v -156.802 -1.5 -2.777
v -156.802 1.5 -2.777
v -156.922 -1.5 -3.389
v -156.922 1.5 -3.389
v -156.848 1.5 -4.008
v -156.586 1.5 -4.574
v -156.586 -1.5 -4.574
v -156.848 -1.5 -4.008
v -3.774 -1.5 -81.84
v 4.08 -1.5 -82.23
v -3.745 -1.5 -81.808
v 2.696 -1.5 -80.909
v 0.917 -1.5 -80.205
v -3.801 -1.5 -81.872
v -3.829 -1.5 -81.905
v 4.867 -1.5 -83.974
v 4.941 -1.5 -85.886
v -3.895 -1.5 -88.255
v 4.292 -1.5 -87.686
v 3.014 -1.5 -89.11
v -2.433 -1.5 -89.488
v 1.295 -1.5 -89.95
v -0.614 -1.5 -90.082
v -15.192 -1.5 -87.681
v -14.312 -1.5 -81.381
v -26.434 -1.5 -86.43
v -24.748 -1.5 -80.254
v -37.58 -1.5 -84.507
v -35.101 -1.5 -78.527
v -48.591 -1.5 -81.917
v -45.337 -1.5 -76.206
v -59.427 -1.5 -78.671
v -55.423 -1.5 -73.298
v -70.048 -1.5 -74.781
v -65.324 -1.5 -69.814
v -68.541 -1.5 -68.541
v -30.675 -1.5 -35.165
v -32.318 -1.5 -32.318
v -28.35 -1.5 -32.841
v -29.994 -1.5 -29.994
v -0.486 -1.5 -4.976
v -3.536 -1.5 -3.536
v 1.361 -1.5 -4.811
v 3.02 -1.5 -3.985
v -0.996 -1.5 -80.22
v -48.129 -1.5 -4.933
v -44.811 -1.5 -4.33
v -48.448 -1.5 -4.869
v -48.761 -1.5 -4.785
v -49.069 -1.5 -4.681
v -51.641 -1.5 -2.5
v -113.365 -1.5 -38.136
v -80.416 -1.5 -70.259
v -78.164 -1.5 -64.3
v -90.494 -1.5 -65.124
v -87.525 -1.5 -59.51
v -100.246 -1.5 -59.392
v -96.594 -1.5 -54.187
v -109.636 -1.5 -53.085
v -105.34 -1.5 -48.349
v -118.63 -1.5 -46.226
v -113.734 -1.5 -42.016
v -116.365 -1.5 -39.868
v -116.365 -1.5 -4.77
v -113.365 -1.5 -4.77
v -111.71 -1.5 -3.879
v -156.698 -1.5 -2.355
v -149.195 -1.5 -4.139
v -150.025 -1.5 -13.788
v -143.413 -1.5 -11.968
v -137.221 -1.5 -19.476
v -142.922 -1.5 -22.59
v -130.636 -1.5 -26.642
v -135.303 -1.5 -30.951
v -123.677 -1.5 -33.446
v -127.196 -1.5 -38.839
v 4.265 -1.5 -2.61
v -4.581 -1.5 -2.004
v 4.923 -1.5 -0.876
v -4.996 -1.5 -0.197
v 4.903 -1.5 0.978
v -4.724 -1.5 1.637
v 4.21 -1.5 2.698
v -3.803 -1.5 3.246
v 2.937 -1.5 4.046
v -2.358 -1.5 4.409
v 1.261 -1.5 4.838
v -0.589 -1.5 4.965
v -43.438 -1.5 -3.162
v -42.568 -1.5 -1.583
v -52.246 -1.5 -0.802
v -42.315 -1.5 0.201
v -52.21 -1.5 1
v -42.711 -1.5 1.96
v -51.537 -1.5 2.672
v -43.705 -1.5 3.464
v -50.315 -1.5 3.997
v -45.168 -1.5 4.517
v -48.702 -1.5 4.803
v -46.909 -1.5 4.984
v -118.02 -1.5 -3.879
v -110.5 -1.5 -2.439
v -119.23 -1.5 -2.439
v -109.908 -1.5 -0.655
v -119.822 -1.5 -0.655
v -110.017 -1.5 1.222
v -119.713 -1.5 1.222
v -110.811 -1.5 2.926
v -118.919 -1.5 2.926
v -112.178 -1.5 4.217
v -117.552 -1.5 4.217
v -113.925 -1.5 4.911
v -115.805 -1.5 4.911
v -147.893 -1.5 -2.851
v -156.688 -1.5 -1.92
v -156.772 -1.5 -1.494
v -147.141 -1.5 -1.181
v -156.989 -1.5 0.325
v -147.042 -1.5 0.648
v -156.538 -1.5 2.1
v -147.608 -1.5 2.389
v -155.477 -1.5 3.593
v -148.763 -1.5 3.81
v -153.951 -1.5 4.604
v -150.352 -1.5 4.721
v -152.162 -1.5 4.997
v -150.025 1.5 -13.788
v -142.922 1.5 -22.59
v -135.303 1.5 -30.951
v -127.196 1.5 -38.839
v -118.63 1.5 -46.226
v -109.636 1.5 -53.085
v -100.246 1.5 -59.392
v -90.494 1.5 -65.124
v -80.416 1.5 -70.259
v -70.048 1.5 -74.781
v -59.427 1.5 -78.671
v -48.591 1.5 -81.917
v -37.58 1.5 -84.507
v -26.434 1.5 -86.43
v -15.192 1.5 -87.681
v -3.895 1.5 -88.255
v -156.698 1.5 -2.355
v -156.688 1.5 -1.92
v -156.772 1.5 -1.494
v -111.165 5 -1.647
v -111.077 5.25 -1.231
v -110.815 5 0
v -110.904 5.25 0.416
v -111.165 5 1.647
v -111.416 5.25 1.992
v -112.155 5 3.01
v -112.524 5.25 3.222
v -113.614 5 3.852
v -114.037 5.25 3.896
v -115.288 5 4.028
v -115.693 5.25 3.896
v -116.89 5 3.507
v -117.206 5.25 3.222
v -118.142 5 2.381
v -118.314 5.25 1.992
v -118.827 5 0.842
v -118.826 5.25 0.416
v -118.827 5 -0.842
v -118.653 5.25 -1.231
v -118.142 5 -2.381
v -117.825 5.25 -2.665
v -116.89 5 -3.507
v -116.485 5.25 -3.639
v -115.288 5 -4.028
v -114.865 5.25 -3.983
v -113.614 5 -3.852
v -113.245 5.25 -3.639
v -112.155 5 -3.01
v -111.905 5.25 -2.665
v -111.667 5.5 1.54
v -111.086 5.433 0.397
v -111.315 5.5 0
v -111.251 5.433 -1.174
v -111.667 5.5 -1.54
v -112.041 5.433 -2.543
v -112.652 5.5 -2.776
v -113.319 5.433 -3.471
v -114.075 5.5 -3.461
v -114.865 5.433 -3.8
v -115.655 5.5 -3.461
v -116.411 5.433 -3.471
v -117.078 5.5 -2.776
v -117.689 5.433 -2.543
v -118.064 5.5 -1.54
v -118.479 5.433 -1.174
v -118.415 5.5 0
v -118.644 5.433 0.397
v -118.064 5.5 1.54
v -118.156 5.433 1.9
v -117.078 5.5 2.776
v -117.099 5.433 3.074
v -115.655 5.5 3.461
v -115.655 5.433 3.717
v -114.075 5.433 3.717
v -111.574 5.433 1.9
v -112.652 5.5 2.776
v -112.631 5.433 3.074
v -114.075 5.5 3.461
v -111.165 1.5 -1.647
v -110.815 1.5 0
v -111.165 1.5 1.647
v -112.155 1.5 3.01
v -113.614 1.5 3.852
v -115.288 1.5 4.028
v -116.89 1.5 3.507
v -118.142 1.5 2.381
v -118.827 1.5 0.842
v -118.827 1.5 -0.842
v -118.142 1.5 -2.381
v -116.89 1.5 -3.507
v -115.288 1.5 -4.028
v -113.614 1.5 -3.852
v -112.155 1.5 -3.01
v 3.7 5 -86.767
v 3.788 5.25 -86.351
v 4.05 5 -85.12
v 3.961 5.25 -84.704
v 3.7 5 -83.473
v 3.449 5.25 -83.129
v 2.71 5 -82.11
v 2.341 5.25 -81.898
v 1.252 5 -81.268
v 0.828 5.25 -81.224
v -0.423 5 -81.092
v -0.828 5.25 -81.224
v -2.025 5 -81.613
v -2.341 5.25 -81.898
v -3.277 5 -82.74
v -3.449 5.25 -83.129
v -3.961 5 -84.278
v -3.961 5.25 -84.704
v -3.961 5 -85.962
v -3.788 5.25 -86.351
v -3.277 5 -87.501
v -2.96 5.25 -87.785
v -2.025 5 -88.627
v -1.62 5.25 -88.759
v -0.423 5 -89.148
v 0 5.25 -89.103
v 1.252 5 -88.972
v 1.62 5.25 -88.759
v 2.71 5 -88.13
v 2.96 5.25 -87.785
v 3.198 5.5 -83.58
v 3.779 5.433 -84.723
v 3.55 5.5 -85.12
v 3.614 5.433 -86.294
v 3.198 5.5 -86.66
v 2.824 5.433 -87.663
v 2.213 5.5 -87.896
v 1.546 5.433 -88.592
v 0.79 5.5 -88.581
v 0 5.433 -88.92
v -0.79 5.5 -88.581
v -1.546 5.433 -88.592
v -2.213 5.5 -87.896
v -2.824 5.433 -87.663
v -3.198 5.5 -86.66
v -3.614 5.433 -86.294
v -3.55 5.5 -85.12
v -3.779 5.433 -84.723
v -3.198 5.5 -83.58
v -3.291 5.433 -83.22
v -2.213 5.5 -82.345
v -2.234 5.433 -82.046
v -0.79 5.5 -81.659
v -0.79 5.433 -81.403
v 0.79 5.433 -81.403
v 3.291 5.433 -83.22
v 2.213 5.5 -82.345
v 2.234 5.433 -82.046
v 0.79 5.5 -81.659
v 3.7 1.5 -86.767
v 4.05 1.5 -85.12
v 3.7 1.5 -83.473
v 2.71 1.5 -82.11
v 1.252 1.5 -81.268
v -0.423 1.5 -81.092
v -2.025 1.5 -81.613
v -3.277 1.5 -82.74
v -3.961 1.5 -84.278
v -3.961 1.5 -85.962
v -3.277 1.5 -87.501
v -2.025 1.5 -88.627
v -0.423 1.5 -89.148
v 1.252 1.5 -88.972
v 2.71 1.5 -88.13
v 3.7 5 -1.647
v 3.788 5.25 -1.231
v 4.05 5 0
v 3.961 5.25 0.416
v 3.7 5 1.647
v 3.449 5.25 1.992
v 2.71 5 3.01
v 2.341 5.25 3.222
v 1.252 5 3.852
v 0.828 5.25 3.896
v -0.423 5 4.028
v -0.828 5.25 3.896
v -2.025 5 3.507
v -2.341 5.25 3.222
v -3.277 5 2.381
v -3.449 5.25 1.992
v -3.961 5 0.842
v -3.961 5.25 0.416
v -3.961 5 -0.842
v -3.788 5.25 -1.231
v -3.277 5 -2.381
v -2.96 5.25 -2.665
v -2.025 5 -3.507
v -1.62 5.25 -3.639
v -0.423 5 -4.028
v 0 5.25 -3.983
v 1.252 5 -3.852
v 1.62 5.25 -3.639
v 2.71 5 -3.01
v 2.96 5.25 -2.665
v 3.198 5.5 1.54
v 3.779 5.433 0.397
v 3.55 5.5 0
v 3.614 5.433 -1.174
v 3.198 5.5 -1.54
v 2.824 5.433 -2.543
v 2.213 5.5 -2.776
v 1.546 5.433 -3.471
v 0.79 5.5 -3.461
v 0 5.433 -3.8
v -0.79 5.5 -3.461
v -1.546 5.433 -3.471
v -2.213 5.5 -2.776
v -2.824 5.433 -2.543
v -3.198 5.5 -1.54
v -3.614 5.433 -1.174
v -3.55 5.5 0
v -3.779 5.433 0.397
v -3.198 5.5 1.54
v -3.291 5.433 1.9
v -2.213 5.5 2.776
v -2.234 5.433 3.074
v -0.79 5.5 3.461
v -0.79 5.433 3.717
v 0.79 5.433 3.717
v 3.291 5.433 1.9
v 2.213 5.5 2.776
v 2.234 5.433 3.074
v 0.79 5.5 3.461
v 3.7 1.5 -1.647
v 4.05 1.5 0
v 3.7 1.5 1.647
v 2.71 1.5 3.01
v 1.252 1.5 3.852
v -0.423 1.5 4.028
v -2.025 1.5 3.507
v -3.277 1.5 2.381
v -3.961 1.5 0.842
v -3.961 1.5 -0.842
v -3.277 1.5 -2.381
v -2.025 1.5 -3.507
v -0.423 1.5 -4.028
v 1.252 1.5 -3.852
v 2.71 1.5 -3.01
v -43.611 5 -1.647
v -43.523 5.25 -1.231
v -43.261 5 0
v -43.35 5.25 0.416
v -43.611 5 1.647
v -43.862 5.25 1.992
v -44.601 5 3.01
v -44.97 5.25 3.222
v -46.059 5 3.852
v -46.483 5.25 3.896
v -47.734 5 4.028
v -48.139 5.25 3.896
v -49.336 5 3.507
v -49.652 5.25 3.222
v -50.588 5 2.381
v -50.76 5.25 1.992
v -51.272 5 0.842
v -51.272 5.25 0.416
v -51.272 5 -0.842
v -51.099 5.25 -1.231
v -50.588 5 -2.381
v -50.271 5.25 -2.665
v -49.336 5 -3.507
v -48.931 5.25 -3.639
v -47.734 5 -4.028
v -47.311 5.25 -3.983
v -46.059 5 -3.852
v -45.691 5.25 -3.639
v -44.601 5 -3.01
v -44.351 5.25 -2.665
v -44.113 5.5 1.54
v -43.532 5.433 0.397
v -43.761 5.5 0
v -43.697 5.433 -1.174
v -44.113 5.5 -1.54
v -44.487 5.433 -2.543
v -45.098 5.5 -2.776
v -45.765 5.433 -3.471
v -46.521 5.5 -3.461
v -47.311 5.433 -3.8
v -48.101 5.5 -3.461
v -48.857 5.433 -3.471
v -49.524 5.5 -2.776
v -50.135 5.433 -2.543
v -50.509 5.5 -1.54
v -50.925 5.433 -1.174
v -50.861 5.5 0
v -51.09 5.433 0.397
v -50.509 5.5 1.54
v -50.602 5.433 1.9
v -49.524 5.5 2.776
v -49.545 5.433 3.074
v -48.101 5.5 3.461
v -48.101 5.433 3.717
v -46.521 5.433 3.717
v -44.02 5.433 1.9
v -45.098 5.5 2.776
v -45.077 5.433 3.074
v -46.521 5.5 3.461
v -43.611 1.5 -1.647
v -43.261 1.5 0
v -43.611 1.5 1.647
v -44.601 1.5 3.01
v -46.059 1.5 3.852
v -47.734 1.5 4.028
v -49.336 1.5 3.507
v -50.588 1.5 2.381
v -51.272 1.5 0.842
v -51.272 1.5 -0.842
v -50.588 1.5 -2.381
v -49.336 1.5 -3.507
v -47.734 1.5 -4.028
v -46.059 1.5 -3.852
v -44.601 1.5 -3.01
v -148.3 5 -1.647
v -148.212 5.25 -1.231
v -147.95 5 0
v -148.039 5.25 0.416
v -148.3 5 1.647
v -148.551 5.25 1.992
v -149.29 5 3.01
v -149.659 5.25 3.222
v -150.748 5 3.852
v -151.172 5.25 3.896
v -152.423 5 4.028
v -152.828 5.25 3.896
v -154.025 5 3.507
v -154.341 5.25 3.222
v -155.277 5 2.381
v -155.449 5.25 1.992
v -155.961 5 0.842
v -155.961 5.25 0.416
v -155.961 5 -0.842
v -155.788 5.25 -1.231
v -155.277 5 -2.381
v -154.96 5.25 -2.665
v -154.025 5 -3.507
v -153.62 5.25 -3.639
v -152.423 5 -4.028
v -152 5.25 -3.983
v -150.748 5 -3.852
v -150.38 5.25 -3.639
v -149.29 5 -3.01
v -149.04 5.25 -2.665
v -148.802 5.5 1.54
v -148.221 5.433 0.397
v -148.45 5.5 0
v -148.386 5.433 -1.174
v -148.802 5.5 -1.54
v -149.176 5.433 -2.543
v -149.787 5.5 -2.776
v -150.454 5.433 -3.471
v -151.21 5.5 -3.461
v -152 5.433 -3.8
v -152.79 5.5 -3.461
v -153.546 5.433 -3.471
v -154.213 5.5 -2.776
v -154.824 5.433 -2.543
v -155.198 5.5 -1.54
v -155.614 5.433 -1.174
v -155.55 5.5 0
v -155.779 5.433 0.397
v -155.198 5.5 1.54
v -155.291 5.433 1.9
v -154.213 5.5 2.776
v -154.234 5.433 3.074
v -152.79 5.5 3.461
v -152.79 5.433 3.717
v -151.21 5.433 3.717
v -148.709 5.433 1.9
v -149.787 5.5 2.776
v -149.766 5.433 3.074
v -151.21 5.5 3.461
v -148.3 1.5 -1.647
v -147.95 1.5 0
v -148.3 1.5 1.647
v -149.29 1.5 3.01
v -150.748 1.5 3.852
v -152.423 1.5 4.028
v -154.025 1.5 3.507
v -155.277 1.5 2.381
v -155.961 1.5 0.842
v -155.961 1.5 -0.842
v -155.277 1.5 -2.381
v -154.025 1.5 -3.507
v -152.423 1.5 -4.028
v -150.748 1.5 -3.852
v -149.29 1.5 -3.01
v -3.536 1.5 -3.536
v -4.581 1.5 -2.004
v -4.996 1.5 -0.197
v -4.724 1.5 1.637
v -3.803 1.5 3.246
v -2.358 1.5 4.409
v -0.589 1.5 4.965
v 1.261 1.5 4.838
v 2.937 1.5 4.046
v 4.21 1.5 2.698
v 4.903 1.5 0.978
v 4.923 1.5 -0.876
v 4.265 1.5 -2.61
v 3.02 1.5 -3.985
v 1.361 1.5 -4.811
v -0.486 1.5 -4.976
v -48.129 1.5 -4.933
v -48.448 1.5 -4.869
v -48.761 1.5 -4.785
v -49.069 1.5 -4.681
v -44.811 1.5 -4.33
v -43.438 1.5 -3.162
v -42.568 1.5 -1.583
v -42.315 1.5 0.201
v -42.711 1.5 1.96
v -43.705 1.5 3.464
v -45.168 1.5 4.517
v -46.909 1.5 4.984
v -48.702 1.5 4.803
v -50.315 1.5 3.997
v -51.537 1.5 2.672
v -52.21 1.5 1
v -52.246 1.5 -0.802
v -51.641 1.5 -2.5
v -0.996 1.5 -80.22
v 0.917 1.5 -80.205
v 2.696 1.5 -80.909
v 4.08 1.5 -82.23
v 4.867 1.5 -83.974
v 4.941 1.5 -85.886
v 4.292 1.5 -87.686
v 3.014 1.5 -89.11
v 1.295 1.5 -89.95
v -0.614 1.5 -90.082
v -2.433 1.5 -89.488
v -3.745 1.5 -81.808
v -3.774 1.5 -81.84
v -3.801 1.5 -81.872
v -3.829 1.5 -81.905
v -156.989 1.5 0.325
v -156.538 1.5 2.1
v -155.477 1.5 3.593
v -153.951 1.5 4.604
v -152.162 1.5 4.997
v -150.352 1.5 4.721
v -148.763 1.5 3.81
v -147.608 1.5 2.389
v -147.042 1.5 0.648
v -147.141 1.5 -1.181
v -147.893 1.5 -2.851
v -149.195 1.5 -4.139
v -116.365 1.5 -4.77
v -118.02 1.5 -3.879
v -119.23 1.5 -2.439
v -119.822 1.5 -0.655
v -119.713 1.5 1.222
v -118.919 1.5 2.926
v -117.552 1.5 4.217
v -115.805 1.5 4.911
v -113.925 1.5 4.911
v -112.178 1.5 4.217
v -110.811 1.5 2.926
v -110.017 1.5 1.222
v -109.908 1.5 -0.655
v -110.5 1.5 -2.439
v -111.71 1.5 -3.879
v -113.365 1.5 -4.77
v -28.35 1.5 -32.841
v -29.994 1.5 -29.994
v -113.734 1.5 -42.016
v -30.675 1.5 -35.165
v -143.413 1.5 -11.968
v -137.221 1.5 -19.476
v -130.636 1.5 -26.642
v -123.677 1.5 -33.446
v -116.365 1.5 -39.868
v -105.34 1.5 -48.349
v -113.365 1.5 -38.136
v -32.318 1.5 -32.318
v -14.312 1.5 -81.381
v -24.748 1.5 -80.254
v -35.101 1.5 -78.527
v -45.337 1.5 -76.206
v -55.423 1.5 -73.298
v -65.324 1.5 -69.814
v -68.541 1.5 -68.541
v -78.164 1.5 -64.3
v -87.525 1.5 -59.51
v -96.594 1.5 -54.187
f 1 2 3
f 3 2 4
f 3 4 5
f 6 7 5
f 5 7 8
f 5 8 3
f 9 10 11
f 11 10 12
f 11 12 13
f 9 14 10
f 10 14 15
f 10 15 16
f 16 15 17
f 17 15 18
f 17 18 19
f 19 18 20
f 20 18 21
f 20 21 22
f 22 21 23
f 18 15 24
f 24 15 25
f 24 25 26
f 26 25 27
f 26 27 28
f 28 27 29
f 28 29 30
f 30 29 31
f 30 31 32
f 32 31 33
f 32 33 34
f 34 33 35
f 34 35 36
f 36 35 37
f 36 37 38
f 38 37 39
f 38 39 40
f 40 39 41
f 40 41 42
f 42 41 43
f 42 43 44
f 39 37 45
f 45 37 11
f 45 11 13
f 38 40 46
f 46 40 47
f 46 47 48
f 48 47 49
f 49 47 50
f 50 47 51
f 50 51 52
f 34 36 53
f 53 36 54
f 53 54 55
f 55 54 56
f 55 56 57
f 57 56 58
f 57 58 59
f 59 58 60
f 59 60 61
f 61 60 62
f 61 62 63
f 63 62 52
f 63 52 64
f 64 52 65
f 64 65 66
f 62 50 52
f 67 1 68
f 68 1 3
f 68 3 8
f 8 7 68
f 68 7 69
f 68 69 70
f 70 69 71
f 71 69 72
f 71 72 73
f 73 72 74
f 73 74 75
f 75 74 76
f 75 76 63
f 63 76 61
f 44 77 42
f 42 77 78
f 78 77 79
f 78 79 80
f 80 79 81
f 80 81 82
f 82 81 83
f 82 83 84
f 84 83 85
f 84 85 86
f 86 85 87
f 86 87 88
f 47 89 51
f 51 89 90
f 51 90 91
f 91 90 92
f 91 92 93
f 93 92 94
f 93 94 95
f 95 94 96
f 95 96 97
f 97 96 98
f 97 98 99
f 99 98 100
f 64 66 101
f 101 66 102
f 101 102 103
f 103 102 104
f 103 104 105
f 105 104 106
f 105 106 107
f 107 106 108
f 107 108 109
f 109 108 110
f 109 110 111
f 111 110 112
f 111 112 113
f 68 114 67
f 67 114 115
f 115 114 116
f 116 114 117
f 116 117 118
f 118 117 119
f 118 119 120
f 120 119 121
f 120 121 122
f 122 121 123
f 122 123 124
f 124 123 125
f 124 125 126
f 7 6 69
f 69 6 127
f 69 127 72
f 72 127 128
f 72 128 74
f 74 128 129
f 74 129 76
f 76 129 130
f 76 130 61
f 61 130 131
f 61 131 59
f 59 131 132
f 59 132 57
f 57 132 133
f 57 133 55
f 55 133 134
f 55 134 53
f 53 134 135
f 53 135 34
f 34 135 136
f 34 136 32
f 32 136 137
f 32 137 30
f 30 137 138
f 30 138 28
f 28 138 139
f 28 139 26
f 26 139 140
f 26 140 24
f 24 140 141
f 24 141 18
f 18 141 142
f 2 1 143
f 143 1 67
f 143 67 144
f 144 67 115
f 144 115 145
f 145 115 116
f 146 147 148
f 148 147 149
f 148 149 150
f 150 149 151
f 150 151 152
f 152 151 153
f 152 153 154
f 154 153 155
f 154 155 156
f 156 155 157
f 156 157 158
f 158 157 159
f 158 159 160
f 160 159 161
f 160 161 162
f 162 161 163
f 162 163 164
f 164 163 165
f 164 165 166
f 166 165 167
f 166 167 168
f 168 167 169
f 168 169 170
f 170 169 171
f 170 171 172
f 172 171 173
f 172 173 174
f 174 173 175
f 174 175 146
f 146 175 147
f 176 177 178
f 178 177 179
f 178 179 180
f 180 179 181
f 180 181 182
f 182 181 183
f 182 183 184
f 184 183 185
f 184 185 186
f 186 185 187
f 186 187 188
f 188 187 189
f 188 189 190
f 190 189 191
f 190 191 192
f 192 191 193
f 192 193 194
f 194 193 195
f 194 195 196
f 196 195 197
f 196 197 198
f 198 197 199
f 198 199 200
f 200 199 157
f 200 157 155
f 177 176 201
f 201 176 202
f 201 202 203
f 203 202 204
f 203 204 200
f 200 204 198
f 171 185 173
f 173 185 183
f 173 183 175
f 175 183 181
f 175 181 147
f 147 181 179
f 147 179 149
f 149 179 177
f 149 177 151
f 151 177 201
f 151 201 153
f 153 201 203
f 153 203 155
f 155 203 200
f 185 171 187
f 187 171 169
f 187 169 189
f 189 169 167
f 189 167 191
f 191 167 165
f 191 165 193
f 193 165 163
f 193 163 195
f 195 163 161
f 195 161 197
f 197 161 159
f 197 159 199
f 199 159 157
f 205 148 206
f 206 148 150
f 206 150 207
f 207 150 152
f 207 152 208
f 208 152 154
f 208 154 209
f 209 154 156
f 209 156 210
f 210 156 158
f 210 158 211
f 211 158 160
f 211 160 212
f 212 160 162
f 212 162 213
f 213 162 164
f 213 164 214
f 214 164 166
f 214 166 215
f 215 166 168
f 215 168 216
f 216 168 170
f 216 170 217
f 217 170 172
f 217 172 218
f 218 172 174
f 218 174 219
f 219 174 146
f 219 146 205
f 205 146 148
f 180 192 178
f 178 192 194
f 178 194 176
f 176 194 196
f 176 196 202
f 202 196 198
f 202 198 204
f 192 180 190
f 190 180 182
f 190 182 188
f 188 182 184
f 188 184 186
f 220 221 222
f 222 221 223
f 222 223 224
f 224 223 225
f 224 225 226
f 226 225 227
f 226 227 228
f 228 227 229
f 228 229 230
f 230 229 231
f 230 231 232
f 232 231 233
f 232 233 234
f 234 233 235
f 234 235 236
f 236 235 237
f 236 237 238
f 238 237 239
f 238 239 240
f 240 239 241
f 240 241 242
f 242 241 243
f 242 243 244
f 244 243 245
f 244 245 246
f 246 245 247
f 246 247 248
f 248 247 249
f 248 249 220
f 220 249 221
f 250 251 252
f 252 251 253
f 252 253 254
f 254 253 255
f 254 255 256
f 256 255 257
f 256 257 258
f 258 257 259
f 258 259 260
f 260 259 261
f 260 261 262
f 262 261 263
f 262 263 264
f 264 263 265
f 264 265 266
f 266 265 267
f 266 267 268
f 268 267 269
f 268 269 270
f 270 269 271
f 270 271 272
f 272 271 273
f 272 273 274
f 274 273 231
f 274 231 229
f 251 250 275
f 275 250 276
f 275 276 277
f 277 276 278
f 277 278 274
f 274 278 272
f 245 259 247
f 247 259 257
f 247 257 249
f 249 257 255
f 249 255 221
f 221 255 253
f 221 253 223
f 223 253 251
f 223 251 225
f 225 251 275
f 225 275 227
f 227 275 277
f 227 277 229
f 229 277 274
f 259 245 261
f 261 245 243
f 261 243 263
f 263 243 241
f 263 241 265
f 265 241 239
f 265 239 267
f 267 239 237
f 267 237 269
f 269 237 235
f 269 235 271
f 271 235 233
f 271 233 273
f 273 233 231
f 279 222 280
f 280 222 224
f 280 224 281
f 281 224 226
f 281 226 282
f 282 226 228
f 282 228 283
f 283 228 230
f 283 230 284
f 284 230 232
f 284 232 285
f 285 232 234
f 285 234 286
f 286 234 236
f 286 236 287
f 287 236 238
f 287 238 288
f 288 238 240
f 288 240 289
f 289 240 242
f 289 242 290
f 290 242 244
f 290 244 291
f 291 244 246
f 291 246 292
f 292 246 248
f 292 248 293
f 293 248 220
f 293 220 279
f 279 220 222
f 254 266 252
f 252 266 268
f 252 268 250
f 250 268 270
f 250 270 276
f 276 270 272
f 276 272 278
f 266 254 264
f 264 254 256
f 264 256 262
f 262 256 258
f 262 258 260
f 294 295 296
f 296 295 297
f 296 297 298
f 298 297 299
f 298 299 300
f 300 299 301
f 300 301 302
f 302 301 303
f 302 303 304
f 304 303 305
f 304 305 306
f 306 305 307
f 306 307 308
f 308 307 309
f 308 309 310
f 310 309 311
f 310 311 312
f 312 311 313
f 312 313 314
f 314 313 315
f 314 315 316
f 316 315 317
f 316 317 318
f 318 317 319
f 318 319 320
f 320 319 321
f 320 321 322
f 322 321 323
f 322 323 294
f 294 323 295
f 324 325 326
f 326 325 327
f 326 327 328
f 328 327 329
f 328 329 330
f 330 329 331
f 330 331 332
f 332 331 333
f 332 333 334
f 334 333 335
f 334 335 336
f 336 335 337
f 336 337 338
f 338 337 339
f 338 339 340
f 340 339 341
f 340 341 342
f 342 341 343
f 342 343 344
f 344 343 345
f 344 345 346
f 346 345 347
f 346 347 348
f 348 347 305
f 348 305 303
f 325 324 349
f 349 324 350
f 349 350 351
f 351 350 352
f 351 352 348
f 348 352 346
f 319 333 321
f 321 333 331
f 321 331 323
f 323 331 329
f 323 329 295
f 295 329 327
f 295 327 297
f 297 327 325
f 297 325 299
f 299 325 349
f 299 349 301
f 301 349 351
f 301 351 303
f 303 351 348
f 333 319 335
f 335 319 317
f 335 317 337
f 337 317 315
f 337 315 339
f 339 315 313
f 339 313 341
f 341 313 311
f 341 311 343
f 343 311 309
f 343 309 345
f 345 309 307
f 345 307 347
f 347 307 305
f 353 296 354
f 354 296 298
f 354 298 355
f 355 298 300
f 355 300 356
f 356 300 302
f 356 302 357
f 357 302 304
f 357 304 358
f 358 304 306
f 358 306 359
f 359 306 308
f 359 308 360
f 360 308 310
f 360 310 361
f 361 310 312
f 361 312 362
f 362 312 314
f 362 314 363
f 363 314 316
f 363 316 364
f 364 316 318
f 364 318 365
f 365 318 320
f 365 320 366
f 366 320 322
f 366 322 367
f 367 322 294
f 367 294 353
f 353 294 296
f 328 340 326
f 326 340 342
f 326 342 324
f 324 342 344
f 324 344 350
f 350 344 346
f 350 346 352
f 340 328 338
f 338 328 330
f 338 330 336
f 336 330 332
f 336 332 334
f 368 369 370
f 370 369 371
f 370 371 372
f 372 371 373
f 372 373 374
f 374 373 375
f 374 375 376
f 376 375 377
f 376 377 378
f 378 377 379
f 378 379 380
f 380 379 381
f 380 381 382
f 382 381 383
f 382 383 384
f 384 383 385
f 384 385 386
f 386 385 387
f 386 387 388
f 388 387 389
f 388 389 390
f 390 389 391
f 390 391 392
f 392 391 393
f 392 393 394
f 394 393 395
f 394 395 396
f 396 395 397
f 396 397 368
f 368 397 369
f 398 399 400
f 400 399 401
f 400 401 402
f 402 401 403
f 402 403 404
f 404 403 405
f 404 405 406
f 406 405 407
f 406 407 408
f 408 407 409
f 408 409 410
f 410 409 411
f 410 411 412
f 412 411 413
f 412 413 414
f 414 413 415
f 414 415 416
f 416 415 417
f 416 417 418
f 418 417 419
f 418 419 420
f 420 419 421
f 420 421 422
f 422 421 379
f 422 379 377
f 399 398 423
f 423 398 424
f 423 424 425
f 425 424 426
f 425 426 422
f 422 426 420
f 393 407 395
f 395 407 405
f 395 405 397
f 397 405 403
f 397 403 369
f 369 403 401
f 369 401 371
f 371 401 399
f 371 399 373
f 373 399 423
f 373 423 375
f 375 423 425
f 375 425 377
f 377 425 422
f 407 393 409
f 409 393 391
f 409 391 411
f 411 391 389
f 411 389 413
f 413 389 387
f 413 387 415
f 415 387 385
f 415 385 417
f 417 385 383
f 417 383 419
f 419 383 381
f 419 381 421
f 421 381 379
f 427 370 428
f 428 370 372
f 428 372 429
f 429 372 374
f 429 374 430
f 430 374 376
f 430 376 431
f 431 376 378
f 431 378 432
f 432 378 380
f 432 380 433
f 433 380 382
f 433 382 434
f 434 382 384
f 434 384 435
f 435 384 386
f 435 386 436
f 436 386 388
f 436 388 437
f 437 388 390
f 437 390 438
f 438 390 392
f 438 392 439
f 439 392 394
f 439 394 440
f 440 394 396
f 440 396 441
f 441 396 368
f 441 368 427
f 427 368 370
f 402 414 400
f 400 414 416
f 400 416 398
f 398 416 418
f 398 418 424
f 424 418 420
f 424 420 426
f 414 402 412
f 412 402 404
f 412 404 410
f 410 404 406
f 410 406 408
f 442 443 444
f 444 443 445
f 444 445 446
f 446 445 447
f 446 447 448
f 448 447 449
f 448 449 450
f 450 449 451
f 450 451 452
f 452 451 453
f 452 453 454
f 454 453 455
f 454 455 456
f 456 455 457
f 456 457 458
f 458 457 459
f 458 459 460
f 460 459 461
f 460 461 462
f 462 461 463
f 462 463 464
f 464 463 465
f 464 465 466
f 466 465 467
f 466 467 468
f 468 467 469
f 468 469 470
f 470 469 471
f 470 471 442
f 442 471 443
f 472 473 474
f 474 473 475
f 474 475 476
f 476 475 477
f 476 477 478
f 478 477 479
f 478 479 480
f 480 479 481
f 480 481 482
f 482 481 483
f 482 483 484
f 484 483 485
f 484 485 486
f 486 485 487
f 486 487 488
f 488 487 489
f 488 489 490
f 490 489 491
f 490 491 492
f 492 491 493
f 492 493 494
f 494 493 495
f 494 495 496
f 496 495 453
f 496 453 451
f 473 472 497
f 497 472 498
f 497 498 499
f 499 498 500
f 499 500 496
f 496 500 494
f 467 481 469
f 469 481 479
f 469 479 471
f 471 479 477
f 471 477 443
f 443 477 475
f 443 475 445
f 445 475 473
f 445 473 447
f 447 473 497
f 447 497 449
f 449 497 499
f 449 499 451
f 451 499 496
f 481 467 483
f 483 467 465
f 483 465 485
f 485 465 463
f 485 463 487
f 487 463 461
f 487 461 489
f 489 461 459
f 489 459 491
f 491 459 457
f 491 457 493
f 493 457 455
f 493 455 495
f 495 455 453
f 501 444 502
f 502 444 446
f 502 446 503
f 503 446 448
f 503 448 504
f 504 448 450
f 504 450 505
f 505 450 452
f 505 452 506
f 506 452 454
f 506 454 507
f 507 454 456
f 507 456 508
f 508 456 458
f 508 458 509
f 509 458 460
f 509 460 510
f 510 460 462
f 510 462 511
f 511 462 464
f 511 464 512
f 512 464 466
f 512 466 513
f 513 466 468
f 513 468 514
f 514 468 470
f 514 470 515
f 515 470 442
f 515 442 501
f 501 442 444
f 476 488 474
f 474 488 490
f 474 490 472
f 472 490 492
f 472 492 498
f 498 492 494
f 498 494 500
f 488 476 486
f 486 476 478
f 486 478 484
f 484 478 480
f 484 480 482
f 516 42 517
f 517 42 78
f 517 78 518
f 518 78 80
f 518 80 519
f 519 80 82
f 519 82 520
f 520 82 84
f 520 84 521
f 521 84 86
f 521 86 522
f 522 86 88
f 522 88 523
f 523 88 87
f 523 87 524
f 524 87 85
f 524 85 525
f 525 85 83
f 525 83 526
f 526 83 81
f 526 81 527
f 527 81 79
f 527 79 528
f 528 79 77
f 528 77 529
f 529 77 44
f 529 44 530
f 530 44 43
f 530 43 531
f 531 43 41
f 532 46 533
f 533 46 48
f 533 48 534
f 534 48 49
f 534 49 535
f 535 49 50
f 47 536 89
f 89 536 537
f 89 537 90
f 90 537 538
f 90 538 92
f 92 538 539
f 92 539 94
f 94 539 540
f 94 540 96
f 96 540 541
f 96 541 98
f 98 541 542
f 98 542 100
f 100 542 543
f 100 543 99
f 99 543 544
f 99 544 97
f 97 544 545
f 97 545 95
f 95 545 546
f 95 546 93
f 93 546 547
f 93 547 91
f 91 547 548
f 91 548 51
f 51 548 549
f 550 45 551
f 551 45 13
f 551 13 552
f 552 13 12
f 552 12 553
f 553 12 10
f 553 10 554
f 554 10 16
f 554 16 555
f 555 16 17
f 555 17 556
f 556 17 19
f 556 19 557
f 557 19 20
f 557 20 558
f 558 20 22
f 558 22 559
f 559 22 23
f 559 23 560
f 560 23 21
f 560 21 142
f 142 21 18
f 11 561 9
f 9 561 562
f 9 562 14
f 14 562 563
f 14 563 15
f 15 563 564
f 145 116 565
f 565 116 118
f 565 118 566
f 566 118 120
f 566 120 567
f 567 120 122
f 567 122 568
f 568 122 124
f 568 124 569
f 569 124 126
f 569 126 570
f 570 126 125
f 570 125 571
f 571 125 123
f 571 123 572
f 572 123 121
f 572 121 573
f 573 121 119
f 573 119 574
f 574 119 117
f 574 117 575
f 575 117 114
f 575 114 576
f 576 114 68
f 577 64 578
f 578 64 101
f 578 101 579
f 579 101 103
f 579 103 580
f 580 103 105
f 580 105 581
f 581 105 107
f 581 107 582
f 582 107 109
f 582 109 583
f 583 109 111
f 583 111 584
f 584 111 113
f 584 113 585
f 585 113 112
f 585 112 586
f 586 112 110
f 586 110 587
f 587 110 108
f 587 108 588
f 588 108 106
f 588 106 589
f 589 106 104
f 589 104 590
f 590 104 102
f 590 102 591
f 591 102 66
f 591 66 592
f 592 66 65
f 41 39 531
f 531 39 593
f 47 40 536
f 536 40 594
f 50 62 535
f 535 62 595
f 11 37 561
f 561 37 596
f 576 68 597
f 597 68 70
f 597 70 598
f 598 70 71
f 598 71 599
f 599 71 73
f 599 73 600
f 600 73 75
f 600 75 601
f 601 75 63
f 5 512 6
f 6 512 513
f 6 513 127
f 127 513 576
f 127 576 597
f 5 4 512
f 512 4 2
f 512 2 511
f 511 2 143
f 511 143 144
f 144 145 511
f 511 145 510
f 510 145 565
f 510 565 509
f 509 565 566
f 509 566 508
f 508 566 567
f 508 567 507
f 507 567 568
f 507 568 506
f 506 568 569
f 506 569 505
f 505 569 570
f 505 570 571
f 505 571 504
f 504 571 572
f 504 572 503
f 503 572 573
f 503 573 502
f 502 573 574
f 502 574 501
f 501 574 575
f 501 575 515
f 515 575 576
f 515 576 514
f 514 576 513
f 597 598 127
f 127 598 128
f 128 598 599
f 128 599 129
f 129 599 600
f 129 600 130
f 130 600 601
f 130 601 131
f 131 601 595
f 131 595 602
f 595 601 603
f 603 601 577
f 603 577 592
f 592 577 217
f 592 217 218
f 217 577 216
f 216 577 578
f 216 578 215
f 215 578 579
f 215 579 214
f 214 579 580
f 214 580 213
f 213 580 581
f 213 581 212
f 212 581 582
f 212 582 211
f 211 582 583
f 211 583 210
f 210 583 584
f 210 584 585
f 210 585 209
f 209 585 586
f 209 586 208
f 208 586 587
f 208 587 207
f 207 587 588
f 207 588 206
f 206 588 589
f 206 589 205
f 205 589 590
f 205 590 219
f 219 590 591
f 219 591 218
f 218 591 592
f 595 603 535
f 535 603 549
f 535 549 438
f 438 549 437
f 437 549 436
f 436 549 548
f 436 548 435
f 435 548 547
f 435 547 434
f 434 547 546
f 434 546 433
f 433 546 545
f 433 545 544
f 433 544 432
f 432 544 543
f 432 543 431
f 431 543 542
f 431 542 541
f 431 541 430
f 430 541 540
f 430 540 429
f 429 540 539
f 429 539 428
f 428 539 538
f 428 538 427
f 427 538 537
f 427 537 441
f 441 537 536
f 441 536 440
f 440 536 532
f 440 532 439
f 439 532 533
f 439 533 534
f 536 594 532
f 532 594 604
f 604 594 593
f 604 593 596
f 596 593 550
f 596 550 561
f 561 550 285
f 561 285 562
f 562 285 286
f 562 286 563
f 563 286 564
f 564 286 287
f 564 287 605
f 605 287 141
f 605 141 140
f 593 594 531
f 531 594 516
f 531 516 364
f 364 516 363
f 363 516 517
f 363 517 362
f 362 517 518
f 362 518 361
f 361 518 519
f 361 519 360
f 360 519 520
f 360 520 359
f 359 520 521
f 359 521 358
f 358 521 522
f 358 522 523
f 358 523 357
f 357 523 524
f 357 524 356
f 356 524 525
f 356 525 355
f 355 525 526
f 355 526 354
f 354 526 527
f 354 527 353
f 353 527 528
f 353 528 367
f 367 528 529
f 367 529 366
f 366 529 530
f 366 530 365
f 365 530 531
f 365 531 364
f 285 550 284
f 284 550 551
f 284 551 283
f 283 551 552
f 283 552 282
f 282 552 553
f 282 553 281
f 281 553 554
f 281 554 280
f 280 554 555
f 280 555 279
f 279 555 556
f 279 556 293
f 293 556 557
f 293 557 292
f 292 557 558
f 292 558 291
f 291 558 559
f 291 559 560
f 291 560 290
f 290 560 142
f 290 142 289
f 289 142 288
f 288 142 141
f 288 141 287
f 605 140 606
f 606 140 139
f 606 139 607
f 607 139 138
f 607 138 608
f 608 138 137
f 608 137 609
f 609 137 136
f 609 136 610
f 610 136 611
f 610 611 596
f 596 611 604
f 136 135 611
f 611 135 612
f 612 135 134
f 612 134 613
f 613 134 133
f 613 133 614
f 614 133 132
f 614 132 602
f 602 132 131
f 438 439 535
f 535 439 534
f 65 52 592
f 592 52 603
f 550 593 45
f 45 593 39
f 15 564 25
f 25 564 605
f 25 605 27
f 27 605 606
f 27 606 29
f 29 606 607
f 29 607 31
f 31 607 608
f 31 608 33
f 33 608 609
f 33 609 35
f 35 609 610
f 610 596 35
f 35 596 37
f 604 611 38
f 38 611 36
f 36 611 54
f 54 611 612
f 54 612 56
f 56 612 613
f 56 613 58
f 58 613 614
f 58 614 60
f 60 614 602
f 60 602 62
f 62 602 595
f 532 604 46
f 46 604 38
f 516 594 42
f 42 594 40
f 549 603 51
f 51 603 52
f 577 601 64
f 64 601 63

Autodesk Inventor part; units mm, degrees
ref_plane "YZ Plane" through (0, 0, 0) normal (1, 0, 0) x (0, 1, 0)
ref_plane "XZ Plane" through (0, 0, 0) normal (0, 1, 0) x (-1, 0, 0)
ref_plane "XY Plane" through (0, 0, 0) normal (0, 0, 1) x (1, 0, 0)
sketch "Sketch1" plane through (0, 0, 0) normal (0, 1, 0) x (-1, 0, 0)
  arc A0 (-152, 0) -> (152, 0) centre (0, 100) ccw
  line L0 (0, -81.945) -> (-47.311, 0)
  line L1 (-47.311, 0) -> (47.311, 0) construction
  line L2 (47.311, 0) -> (0, -81.945)
  line L3 (0, 0) -> (68.5411, -68.5411)
  line L4 (0, 0) -> (-68.5411, -68.5411)
  line L5 (47.311, 0) -> (116.3651, -39.8684)
  line L6 (-47.311, 0) -> (-116.3651, -39.8684)
  line L7 (114.7776, -42.618) -> (48.4731, -4.3371)
  line L8 (48.4731, -4.3371) -> (0, -88.295)
  line L9 (0, -88.295) -> (-48.4731, -4.3371)
  line L10 (-48.4731, -4.3371) -> (-114.4332, -42.4192)
  line L11 (-66.0999, -70.5901) -> (0, -4.4901)
  line L12 (0, -4.4901) -> (66.2961, -70.7862)
  line L13 (116.3651, -39.8684) -> (114.7776, -42.618)
  line L14 (68.5411, -68.5411) -> (66.2961, -70.7862)
  line L15 (-66.0999, -70.5901) -> (-67.8825, -68.8075)
  line L16 (-114.4332, -42.4192) -> (-115.4867, -40.5945)
  arc A1 (-157.2837, -3.5223) -> (157.2837, -3.5223) centre (0, 100) ccw
  line L17 (157.2837, -3.5223) -> (152, 0)
  line L18 (-152, 0) -> (-157.2837, -3.5223)
  line L19 (116.3651, -39.8684) -> (113.3651, -39.8684)
  line L20 (113.3651, -39.8684) -> (113.3651, 0)
  line L21 (113.3651, 0) -> (116.3651, 0)
  line L22 (116.3651, 0) -> (116.3651, -39.8684)
  line L23 (0, 0) -> (0, -27.315) construction
  line L24 (-116.3651, -39.8684) -> (-113.3651, -39.8684)
  line L25 (-113.3651, -39.8684) -> (-113.3651, 0)
  line L26 (-113.3651, 0) -> (-116.3651, 0)
  line L27 (-116.3651, 0) -> (-116.3651, -39.8684)
  point P0 (-3.6878, -81.9077)
  point P1 (-65.3239, -69.814)
  point P2 (-30.6747, -35.1649)
  point P3 (29.994, -29.994)
  point P4 (-29.994, -29.994)
  point P5 (32.3182, -32.3182)
  point P6 (113.7344, -42.0158)
  point P7 (30.6747, -35.1649)
  point P8 (65.3239, -69.814)
  point P9 (3.6878, -81.9077)
  point P10 (-28.3505, -32.8406)
  point P11 (28.3505, -32.8406)
  point P12 (-32.3182, -32.3182)
  point P13 (-113.7344, -42.0158)
  point P14 (-113.3651, -38.1363)
  point P15 (113.3651, -38.1363)
  point P16 (0, 0)
  dimension "d0" = 152
  dimension "d1" = 152
  dimension "d2" = 100
  dimension "d3" = 0
  dimension "d4" = 45
  dimension "d8" = 3.175
  dimension "d9" = 3.175
  dimension "d10" = 6.35
  dimension "d11" = 6.35
  dimension "d12" = 3.5223
  dimension "d13" = 3.5223
  dimension "d29" = 3
  dimension "d30" = 157.2837
extrude "Extrusion1" add sketch "Sketch1" along normal mid plane 3 contours A0 L16 L10 L15 L11 L9 A1 L18 | L24 L25 L6 L0 L4 L9 L10 A0 | L27 L26 L25 L6 | L6 L25 L24 | A0 L10 L16 | L9 A0 L8 | L8 A0 L12 L14 L7 L13 L17 A1 | A0 L2 L12 L8 | L9 L11 L0 A0 | L4 L9 L11 A0 | L4 L3 L2 L12 L11 L0 | L0 L11 L9 L4 | L12 L8 L3 A0 | A0 L14 L12 | L12 L2 L3 L8 | L11 L15 A0 | L3 L2 L5 L20 L19 A0 L7 L8 | L13 L7 A0 | L19 L20 L5 | L5 L20 L21 L22
sketch "Sketch2" plane through (0, 1.5, 0) normal (0, 1, 0) x (1, 0, 0)
  line L0 (0, 0) -> (29.994, 29.994) projected
  line L1 (0, 0) -> (200, 0)
  line L2 (200, 0) -> (200, 200)
  line L3 (200, 200) -> (0, 200)
  line L4 (0, 200) -> (0, 0)
  dimension "d16" = 200
  dimension "d17" = 200
extrude "Extrusion2" cut sketch "Sketch2" along normal through all both and the other way through all
sketch "Sketch3" plane through (0, 1.5, 0) normal (0, 1, 0) x (1, 0, 0)
  line L0 (-29.994, 29.994) -> (0, 0) projected
  circle A0 centre (0, 0) radius 5
  line L1 (-157.2837, 3.5223) -> (-152, 0) projected
  line L2 (-47.311, 0) -> (-29.994, 29.994) projected
  circle A1 centre (-47.311, 0) radius 5
  line L3 (0, 81.945) -> (0, 88.295) projected
  circle A2 centre (0, 85.12) radius 5
  circle A3 centre (-152, 0) radius 5
  line L4 (-116.3651, 0) -> (-113.3651, 0) projected
  circle A4 centre (-114.8651, 0) radius 5
  dimension "d20" = 10
extrude "Circular_Mounts" add sketch "Sketch3" against normal blind 3
sketch "Sketch4" plane through (0, 1.5, 0) normal (0, 1, 0) x (1, 0, 0)
  arc A0 (-51.6411, 2.5) -> (-44.811, 4.3301) centre (-47.311, 0) ccw projected
  circle A1 centre (-47.311, 0) radius 4.05
  circle A2 centre (0, 0) radius 4.05
  arc A3 (-156.1603, 2.7735) -> (-149.1948, 4.1389) centre (-152, 0) ccw projected
  circle A4 centre (-152, 0) radius 4.05
  arc A5 (-0.9958, 80.2202) -> (-3.8953, 88.2548) centre (0, 85.12) ccw projected
  circle A6 centre (0, 85.12) radius 4.05
  arc A7 (-116.3651, 4.7697) -> (-113.3651, 4.7697) centre (-114.8651, 0) ccw projected
  circle A8 centre (-114.8651, 0) radius 4.05
  dimension "d23" = 8.1
extrude "Inserts" add sketch "Sketch4" along normal blind 4
fillet "Fillet2" radius 0.5 5 edges at (-156.05, 5.5, 0) (-51.361, 5.5, 0) (-4.05, 5.5, 0) (-4.05, 5.5, -85.12) (-118.9151, 5.5, 0)
fillet "Fillet3" radius 2 2 edges at (-156.1603, 0, -2.7735) (-157.2837, 0, -3.5223)
equation "\"d1\" = d0"
properties part number "W-Support" material "ABS Plastic"
